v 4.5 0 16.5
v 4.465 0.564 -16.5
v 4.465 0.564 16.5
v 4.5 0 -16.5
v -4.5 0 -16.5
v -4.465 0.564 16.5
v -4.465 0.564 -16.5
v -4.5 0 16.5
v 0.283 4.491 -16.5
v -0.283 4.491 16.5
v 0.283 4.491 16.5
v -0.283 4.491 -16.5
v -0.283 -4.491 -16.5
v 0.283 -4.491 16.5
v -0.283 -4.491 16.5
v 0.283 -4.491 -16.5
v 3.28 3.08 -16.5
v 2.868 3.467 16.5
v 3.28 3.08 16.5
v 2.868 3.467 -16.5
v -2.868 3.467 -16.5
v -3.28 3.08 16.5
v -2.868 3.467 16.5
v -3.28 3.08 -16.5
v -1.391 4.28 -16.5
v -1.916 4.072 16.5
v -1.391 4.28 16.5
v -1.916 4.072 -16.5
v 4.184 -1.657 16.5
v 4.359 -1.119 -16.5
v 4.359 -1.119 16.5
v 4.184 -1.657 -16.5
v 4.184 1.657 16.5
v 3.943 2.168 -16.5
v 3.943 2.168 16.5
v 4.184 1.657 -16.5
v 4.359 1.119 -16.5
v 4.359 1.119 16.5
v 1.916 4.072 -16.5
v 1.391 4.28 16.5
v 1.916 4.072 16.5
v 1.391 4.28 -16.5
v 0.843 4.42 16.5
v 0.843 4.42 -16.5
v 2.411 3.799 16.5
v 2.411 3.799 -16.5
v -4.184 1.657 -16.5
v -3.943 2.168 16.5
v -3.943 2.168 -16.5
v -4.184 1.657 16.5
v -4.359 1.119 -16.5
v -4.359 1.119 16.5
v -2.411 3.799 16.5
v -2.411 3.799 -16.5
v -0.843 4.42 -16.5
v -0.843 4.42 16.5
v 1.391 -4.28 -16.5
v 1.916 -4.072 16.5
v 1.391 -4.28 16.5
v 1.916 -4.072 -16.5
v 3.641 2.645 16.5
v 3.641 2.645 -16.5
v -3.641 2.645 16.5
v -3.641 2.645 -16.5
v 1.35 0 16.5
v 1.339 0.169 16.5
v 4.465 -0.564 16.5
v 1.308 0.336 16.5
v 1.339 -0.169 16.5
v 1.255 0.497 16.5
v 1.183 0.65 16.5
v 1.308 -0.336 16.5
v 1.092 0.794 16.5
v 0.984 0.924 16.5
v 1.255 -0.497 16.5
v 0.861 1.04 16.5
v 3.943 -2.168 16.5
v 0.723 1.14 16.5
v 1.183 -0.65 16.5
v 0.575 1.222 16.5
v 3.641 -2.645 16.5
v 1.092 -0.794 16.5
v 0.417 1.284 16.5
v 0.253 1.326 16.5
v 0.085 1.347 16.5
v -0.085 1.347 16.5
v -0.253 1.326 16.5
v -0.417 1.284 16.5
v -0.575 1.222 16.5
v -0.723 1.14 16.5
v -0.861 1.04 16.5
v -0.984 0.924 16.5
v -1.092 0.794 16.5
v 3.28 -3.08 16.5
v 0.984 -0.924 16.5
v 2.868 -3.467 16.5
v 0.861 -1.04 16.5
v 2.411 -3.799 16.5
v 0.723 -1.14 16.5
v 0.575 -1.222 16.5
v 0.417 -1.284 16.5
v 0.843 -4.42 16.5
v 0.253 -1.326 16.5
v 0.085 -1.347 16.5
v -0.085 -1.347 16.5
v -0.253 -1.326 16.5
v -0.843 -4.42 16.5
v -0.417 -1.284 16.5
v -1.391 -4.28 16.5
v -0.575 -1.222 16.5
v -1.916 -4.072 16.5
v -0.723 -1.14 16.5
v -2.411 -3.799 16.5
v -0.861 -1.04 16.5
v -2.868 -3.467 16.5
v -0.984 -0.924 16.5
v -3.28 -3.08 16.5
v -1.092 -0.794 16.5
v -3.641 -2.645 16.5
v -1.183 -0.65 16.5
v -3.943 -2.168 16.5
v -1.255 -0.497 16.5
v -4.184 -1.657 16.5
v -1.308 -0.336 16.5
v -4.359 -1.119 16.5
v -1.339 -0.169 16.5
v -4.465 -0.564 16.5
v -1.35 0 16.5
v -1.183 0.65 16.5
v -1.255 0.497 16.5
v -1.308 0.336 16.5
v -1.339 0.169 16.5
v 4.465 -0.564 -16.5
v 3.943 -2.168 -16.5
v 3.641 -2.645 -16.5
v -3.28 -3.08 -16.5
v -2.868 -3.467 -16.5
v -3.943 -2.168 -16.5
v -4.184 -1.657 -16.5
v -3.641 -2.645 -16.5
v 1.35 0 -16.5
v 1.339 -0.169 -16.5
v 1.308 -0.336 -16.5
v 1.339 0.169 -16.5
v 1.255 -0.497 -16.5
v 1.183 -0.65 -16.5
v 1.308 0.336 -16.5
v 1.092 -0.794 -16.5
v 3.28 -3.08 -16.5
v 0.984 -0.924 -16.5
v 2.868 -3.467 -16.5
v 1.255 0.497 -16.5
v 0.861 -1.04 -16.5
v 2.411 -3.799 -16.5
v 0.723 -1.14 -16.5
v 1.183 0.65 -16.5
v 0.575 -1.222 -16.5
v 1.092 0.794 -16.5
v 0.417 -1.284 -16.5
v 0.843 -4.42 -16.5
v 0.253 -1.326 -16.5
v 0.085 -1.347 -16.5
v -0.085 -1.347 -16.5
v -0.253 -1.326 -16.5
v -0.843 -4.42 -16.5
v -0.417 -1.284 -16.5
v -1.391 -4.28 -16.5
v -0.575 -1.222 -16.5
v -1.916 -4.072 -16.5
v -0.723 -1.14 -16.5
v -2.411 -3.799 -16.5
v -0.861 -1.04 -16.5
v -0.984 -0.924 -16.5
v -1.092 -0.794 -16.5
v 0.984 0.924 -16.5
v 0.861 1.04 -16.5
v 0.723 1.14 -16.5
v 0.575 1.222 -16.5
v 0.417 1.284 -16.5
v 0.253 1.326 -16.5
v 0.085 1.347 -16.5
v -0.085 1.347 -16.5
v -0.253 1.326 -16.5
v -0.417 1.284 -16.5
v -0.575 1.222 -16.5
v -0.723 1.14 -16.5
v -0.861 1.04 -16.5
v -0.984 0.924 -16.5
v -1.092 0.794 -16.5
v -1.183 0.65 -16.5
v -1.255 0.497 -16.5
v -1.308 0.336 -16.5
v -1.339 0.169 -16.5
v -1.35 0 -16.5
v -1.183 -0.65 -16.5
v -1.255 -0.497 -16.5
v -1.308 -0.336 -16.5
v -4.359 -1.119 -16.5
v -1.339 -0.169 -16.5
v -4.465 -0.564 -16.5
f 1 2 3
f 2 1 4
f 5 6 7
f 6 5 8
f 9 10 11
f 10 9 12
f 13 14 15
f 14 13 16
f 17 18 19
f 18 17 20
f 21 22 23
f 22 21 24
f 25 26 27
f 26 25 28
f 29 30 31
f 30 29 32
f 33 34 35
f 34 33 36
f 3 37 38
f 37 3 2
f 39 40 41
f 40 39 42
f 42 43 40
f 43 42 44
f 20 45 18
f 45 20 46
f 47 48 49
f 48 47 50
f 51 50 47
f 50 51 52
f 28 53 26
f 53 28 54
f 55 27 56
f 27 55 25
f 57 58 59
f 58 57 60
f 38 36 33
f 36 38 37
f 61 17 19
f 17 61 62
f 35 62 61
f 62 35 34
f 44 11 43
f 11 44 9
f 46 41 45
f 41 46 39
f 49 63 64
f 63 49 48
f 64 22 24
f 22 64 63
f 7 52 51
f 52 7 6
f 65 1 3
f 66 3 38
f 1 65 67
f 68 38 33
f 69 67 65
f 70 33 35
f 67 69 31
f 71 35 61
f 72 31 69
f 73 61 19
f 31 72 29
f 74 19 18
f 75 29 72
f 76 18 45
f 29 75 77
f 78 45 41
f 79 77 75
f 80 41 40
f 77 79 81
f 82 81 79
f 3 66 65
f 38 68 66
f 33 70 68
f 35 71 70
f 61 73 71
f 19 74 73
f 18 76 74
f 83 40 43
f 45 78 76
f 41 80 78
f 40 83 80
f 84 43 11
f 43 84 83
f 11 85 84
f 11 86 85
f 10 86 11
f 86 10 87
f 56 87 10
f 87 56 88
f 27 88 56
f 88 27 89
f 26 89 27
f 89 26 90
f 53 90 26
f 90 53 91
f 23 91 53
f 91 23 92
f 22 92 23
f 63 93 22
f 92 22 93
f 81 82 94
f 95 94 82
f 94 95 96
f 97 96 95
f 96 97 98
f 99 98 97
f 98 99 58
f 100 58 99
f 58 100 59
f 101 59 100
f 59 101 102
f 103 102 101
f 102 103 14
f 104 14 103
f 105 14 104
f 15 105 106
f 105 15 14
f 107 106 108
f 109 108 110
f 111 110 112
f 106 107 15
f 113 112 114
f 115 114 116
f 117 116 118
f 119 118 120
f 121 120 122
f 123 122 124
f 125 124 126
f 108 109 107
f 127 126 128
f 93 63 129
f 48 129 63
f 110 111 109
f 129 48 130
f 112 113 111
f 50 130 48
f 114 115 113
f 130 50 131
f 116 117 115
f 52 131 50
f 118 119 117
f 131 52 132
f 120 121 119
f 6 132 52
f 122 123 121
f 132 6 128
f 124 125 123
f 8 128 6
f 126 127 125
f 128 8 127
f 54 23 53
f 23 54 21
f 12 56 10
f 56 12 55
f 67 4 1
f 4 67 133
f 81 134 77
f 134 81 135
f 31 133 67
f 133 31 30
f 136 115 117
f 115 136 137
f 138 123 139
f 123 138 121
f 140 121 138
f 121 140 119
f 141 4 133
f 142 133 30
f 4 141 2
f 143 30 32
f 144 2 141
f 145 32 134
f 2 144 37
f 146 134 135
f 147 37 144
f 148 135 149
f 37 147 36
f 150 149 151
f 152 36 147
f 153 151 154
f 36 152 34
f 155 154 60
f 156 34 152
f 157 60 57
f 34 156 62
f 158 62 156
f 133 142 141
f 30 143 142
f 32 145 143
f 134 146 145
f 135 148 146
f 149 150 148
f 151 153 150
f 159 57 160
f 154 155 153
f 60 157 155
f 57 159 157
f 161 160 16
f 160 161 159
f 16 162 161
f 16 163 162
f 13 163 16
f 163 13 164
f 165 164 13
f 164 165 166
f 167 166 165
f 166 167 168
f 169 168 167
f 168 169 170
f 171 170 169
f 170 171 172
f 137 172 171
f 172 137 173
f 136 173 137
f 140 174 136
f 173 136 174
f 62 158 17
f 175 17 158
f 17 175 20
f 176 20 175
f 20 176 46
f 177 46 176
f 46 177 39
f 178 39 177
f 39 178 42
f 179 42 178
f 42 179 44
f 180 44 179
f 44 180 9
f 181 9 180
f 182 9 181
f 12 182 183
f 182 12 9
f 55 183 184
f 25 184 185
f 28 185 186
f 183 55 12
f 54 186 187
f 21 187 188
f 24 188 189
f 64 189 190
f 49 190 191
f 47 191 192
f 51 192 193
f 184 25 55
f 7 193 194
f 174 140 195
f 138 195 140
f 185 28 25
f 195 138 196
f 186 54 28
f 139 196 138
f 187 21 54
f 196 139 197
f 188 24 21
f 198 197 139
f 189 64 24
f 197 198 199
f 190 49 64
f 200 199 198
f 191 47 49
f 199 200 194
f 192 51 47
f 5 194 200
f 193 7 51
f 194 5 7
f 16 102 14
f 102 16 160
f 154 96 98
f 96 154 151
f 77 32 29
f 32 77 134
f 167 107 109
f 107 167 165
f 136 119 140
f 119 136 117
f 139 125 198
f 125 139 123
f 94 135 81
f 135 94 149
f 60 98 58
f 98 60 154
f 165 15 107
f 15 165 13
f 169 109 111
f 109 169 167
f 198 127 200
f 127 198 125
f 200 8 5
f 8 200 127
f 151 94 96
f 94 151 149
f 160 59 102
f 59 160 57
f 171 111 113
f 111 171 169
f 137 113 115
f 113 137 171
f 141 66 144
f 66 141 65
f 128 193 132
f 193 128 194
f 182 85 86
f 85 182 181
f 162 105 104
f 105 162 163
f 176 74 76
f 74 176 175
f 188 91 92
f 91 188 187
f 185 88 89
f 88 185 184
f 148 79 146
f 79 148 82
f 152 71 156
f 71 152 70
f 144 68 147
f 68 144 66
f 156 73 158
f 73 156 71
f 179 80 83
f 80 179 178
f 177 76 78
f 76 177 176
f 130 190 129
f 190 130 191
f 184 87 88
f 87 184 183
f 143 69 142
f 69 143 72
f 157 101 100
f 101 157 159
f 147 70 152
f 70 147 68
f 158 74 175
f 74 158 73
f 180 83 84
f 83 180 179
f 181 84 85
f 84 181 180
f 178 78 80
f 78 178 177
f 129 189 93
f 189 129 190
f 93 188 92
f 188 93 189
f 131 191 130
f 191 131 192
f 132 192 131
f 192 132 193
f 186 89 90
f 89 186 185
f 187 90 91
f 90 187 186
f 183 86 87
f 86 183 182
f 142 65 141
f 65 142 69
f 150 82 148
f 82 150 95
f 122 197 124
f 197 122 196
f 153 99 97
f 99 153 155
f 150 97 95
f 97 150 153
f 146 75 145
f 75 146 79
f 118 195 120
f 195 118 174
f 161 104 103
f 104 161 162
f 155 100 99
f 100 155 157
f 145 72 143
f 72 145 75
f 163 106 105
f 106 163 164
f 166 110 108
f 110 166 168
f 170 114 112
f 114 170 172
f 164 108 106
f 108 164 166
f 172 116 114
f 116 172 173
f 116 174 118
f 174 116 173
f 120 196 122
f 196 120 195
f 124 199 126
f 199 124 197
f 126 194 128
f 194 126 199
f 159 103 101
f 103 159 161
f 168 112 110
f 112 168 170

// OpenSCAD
$fn = 50;


difference() {
	union() {
		translate(v = [0, 0, -16.5000000000]) {
			cylinder(h = 33, r = 4.5000000000);
		}
	}
	union() {
		translate(v = [0, 0, -100.0000000000]) {
			cylinder(h = 200, r = 1.3500000000);
		}
	}
}
